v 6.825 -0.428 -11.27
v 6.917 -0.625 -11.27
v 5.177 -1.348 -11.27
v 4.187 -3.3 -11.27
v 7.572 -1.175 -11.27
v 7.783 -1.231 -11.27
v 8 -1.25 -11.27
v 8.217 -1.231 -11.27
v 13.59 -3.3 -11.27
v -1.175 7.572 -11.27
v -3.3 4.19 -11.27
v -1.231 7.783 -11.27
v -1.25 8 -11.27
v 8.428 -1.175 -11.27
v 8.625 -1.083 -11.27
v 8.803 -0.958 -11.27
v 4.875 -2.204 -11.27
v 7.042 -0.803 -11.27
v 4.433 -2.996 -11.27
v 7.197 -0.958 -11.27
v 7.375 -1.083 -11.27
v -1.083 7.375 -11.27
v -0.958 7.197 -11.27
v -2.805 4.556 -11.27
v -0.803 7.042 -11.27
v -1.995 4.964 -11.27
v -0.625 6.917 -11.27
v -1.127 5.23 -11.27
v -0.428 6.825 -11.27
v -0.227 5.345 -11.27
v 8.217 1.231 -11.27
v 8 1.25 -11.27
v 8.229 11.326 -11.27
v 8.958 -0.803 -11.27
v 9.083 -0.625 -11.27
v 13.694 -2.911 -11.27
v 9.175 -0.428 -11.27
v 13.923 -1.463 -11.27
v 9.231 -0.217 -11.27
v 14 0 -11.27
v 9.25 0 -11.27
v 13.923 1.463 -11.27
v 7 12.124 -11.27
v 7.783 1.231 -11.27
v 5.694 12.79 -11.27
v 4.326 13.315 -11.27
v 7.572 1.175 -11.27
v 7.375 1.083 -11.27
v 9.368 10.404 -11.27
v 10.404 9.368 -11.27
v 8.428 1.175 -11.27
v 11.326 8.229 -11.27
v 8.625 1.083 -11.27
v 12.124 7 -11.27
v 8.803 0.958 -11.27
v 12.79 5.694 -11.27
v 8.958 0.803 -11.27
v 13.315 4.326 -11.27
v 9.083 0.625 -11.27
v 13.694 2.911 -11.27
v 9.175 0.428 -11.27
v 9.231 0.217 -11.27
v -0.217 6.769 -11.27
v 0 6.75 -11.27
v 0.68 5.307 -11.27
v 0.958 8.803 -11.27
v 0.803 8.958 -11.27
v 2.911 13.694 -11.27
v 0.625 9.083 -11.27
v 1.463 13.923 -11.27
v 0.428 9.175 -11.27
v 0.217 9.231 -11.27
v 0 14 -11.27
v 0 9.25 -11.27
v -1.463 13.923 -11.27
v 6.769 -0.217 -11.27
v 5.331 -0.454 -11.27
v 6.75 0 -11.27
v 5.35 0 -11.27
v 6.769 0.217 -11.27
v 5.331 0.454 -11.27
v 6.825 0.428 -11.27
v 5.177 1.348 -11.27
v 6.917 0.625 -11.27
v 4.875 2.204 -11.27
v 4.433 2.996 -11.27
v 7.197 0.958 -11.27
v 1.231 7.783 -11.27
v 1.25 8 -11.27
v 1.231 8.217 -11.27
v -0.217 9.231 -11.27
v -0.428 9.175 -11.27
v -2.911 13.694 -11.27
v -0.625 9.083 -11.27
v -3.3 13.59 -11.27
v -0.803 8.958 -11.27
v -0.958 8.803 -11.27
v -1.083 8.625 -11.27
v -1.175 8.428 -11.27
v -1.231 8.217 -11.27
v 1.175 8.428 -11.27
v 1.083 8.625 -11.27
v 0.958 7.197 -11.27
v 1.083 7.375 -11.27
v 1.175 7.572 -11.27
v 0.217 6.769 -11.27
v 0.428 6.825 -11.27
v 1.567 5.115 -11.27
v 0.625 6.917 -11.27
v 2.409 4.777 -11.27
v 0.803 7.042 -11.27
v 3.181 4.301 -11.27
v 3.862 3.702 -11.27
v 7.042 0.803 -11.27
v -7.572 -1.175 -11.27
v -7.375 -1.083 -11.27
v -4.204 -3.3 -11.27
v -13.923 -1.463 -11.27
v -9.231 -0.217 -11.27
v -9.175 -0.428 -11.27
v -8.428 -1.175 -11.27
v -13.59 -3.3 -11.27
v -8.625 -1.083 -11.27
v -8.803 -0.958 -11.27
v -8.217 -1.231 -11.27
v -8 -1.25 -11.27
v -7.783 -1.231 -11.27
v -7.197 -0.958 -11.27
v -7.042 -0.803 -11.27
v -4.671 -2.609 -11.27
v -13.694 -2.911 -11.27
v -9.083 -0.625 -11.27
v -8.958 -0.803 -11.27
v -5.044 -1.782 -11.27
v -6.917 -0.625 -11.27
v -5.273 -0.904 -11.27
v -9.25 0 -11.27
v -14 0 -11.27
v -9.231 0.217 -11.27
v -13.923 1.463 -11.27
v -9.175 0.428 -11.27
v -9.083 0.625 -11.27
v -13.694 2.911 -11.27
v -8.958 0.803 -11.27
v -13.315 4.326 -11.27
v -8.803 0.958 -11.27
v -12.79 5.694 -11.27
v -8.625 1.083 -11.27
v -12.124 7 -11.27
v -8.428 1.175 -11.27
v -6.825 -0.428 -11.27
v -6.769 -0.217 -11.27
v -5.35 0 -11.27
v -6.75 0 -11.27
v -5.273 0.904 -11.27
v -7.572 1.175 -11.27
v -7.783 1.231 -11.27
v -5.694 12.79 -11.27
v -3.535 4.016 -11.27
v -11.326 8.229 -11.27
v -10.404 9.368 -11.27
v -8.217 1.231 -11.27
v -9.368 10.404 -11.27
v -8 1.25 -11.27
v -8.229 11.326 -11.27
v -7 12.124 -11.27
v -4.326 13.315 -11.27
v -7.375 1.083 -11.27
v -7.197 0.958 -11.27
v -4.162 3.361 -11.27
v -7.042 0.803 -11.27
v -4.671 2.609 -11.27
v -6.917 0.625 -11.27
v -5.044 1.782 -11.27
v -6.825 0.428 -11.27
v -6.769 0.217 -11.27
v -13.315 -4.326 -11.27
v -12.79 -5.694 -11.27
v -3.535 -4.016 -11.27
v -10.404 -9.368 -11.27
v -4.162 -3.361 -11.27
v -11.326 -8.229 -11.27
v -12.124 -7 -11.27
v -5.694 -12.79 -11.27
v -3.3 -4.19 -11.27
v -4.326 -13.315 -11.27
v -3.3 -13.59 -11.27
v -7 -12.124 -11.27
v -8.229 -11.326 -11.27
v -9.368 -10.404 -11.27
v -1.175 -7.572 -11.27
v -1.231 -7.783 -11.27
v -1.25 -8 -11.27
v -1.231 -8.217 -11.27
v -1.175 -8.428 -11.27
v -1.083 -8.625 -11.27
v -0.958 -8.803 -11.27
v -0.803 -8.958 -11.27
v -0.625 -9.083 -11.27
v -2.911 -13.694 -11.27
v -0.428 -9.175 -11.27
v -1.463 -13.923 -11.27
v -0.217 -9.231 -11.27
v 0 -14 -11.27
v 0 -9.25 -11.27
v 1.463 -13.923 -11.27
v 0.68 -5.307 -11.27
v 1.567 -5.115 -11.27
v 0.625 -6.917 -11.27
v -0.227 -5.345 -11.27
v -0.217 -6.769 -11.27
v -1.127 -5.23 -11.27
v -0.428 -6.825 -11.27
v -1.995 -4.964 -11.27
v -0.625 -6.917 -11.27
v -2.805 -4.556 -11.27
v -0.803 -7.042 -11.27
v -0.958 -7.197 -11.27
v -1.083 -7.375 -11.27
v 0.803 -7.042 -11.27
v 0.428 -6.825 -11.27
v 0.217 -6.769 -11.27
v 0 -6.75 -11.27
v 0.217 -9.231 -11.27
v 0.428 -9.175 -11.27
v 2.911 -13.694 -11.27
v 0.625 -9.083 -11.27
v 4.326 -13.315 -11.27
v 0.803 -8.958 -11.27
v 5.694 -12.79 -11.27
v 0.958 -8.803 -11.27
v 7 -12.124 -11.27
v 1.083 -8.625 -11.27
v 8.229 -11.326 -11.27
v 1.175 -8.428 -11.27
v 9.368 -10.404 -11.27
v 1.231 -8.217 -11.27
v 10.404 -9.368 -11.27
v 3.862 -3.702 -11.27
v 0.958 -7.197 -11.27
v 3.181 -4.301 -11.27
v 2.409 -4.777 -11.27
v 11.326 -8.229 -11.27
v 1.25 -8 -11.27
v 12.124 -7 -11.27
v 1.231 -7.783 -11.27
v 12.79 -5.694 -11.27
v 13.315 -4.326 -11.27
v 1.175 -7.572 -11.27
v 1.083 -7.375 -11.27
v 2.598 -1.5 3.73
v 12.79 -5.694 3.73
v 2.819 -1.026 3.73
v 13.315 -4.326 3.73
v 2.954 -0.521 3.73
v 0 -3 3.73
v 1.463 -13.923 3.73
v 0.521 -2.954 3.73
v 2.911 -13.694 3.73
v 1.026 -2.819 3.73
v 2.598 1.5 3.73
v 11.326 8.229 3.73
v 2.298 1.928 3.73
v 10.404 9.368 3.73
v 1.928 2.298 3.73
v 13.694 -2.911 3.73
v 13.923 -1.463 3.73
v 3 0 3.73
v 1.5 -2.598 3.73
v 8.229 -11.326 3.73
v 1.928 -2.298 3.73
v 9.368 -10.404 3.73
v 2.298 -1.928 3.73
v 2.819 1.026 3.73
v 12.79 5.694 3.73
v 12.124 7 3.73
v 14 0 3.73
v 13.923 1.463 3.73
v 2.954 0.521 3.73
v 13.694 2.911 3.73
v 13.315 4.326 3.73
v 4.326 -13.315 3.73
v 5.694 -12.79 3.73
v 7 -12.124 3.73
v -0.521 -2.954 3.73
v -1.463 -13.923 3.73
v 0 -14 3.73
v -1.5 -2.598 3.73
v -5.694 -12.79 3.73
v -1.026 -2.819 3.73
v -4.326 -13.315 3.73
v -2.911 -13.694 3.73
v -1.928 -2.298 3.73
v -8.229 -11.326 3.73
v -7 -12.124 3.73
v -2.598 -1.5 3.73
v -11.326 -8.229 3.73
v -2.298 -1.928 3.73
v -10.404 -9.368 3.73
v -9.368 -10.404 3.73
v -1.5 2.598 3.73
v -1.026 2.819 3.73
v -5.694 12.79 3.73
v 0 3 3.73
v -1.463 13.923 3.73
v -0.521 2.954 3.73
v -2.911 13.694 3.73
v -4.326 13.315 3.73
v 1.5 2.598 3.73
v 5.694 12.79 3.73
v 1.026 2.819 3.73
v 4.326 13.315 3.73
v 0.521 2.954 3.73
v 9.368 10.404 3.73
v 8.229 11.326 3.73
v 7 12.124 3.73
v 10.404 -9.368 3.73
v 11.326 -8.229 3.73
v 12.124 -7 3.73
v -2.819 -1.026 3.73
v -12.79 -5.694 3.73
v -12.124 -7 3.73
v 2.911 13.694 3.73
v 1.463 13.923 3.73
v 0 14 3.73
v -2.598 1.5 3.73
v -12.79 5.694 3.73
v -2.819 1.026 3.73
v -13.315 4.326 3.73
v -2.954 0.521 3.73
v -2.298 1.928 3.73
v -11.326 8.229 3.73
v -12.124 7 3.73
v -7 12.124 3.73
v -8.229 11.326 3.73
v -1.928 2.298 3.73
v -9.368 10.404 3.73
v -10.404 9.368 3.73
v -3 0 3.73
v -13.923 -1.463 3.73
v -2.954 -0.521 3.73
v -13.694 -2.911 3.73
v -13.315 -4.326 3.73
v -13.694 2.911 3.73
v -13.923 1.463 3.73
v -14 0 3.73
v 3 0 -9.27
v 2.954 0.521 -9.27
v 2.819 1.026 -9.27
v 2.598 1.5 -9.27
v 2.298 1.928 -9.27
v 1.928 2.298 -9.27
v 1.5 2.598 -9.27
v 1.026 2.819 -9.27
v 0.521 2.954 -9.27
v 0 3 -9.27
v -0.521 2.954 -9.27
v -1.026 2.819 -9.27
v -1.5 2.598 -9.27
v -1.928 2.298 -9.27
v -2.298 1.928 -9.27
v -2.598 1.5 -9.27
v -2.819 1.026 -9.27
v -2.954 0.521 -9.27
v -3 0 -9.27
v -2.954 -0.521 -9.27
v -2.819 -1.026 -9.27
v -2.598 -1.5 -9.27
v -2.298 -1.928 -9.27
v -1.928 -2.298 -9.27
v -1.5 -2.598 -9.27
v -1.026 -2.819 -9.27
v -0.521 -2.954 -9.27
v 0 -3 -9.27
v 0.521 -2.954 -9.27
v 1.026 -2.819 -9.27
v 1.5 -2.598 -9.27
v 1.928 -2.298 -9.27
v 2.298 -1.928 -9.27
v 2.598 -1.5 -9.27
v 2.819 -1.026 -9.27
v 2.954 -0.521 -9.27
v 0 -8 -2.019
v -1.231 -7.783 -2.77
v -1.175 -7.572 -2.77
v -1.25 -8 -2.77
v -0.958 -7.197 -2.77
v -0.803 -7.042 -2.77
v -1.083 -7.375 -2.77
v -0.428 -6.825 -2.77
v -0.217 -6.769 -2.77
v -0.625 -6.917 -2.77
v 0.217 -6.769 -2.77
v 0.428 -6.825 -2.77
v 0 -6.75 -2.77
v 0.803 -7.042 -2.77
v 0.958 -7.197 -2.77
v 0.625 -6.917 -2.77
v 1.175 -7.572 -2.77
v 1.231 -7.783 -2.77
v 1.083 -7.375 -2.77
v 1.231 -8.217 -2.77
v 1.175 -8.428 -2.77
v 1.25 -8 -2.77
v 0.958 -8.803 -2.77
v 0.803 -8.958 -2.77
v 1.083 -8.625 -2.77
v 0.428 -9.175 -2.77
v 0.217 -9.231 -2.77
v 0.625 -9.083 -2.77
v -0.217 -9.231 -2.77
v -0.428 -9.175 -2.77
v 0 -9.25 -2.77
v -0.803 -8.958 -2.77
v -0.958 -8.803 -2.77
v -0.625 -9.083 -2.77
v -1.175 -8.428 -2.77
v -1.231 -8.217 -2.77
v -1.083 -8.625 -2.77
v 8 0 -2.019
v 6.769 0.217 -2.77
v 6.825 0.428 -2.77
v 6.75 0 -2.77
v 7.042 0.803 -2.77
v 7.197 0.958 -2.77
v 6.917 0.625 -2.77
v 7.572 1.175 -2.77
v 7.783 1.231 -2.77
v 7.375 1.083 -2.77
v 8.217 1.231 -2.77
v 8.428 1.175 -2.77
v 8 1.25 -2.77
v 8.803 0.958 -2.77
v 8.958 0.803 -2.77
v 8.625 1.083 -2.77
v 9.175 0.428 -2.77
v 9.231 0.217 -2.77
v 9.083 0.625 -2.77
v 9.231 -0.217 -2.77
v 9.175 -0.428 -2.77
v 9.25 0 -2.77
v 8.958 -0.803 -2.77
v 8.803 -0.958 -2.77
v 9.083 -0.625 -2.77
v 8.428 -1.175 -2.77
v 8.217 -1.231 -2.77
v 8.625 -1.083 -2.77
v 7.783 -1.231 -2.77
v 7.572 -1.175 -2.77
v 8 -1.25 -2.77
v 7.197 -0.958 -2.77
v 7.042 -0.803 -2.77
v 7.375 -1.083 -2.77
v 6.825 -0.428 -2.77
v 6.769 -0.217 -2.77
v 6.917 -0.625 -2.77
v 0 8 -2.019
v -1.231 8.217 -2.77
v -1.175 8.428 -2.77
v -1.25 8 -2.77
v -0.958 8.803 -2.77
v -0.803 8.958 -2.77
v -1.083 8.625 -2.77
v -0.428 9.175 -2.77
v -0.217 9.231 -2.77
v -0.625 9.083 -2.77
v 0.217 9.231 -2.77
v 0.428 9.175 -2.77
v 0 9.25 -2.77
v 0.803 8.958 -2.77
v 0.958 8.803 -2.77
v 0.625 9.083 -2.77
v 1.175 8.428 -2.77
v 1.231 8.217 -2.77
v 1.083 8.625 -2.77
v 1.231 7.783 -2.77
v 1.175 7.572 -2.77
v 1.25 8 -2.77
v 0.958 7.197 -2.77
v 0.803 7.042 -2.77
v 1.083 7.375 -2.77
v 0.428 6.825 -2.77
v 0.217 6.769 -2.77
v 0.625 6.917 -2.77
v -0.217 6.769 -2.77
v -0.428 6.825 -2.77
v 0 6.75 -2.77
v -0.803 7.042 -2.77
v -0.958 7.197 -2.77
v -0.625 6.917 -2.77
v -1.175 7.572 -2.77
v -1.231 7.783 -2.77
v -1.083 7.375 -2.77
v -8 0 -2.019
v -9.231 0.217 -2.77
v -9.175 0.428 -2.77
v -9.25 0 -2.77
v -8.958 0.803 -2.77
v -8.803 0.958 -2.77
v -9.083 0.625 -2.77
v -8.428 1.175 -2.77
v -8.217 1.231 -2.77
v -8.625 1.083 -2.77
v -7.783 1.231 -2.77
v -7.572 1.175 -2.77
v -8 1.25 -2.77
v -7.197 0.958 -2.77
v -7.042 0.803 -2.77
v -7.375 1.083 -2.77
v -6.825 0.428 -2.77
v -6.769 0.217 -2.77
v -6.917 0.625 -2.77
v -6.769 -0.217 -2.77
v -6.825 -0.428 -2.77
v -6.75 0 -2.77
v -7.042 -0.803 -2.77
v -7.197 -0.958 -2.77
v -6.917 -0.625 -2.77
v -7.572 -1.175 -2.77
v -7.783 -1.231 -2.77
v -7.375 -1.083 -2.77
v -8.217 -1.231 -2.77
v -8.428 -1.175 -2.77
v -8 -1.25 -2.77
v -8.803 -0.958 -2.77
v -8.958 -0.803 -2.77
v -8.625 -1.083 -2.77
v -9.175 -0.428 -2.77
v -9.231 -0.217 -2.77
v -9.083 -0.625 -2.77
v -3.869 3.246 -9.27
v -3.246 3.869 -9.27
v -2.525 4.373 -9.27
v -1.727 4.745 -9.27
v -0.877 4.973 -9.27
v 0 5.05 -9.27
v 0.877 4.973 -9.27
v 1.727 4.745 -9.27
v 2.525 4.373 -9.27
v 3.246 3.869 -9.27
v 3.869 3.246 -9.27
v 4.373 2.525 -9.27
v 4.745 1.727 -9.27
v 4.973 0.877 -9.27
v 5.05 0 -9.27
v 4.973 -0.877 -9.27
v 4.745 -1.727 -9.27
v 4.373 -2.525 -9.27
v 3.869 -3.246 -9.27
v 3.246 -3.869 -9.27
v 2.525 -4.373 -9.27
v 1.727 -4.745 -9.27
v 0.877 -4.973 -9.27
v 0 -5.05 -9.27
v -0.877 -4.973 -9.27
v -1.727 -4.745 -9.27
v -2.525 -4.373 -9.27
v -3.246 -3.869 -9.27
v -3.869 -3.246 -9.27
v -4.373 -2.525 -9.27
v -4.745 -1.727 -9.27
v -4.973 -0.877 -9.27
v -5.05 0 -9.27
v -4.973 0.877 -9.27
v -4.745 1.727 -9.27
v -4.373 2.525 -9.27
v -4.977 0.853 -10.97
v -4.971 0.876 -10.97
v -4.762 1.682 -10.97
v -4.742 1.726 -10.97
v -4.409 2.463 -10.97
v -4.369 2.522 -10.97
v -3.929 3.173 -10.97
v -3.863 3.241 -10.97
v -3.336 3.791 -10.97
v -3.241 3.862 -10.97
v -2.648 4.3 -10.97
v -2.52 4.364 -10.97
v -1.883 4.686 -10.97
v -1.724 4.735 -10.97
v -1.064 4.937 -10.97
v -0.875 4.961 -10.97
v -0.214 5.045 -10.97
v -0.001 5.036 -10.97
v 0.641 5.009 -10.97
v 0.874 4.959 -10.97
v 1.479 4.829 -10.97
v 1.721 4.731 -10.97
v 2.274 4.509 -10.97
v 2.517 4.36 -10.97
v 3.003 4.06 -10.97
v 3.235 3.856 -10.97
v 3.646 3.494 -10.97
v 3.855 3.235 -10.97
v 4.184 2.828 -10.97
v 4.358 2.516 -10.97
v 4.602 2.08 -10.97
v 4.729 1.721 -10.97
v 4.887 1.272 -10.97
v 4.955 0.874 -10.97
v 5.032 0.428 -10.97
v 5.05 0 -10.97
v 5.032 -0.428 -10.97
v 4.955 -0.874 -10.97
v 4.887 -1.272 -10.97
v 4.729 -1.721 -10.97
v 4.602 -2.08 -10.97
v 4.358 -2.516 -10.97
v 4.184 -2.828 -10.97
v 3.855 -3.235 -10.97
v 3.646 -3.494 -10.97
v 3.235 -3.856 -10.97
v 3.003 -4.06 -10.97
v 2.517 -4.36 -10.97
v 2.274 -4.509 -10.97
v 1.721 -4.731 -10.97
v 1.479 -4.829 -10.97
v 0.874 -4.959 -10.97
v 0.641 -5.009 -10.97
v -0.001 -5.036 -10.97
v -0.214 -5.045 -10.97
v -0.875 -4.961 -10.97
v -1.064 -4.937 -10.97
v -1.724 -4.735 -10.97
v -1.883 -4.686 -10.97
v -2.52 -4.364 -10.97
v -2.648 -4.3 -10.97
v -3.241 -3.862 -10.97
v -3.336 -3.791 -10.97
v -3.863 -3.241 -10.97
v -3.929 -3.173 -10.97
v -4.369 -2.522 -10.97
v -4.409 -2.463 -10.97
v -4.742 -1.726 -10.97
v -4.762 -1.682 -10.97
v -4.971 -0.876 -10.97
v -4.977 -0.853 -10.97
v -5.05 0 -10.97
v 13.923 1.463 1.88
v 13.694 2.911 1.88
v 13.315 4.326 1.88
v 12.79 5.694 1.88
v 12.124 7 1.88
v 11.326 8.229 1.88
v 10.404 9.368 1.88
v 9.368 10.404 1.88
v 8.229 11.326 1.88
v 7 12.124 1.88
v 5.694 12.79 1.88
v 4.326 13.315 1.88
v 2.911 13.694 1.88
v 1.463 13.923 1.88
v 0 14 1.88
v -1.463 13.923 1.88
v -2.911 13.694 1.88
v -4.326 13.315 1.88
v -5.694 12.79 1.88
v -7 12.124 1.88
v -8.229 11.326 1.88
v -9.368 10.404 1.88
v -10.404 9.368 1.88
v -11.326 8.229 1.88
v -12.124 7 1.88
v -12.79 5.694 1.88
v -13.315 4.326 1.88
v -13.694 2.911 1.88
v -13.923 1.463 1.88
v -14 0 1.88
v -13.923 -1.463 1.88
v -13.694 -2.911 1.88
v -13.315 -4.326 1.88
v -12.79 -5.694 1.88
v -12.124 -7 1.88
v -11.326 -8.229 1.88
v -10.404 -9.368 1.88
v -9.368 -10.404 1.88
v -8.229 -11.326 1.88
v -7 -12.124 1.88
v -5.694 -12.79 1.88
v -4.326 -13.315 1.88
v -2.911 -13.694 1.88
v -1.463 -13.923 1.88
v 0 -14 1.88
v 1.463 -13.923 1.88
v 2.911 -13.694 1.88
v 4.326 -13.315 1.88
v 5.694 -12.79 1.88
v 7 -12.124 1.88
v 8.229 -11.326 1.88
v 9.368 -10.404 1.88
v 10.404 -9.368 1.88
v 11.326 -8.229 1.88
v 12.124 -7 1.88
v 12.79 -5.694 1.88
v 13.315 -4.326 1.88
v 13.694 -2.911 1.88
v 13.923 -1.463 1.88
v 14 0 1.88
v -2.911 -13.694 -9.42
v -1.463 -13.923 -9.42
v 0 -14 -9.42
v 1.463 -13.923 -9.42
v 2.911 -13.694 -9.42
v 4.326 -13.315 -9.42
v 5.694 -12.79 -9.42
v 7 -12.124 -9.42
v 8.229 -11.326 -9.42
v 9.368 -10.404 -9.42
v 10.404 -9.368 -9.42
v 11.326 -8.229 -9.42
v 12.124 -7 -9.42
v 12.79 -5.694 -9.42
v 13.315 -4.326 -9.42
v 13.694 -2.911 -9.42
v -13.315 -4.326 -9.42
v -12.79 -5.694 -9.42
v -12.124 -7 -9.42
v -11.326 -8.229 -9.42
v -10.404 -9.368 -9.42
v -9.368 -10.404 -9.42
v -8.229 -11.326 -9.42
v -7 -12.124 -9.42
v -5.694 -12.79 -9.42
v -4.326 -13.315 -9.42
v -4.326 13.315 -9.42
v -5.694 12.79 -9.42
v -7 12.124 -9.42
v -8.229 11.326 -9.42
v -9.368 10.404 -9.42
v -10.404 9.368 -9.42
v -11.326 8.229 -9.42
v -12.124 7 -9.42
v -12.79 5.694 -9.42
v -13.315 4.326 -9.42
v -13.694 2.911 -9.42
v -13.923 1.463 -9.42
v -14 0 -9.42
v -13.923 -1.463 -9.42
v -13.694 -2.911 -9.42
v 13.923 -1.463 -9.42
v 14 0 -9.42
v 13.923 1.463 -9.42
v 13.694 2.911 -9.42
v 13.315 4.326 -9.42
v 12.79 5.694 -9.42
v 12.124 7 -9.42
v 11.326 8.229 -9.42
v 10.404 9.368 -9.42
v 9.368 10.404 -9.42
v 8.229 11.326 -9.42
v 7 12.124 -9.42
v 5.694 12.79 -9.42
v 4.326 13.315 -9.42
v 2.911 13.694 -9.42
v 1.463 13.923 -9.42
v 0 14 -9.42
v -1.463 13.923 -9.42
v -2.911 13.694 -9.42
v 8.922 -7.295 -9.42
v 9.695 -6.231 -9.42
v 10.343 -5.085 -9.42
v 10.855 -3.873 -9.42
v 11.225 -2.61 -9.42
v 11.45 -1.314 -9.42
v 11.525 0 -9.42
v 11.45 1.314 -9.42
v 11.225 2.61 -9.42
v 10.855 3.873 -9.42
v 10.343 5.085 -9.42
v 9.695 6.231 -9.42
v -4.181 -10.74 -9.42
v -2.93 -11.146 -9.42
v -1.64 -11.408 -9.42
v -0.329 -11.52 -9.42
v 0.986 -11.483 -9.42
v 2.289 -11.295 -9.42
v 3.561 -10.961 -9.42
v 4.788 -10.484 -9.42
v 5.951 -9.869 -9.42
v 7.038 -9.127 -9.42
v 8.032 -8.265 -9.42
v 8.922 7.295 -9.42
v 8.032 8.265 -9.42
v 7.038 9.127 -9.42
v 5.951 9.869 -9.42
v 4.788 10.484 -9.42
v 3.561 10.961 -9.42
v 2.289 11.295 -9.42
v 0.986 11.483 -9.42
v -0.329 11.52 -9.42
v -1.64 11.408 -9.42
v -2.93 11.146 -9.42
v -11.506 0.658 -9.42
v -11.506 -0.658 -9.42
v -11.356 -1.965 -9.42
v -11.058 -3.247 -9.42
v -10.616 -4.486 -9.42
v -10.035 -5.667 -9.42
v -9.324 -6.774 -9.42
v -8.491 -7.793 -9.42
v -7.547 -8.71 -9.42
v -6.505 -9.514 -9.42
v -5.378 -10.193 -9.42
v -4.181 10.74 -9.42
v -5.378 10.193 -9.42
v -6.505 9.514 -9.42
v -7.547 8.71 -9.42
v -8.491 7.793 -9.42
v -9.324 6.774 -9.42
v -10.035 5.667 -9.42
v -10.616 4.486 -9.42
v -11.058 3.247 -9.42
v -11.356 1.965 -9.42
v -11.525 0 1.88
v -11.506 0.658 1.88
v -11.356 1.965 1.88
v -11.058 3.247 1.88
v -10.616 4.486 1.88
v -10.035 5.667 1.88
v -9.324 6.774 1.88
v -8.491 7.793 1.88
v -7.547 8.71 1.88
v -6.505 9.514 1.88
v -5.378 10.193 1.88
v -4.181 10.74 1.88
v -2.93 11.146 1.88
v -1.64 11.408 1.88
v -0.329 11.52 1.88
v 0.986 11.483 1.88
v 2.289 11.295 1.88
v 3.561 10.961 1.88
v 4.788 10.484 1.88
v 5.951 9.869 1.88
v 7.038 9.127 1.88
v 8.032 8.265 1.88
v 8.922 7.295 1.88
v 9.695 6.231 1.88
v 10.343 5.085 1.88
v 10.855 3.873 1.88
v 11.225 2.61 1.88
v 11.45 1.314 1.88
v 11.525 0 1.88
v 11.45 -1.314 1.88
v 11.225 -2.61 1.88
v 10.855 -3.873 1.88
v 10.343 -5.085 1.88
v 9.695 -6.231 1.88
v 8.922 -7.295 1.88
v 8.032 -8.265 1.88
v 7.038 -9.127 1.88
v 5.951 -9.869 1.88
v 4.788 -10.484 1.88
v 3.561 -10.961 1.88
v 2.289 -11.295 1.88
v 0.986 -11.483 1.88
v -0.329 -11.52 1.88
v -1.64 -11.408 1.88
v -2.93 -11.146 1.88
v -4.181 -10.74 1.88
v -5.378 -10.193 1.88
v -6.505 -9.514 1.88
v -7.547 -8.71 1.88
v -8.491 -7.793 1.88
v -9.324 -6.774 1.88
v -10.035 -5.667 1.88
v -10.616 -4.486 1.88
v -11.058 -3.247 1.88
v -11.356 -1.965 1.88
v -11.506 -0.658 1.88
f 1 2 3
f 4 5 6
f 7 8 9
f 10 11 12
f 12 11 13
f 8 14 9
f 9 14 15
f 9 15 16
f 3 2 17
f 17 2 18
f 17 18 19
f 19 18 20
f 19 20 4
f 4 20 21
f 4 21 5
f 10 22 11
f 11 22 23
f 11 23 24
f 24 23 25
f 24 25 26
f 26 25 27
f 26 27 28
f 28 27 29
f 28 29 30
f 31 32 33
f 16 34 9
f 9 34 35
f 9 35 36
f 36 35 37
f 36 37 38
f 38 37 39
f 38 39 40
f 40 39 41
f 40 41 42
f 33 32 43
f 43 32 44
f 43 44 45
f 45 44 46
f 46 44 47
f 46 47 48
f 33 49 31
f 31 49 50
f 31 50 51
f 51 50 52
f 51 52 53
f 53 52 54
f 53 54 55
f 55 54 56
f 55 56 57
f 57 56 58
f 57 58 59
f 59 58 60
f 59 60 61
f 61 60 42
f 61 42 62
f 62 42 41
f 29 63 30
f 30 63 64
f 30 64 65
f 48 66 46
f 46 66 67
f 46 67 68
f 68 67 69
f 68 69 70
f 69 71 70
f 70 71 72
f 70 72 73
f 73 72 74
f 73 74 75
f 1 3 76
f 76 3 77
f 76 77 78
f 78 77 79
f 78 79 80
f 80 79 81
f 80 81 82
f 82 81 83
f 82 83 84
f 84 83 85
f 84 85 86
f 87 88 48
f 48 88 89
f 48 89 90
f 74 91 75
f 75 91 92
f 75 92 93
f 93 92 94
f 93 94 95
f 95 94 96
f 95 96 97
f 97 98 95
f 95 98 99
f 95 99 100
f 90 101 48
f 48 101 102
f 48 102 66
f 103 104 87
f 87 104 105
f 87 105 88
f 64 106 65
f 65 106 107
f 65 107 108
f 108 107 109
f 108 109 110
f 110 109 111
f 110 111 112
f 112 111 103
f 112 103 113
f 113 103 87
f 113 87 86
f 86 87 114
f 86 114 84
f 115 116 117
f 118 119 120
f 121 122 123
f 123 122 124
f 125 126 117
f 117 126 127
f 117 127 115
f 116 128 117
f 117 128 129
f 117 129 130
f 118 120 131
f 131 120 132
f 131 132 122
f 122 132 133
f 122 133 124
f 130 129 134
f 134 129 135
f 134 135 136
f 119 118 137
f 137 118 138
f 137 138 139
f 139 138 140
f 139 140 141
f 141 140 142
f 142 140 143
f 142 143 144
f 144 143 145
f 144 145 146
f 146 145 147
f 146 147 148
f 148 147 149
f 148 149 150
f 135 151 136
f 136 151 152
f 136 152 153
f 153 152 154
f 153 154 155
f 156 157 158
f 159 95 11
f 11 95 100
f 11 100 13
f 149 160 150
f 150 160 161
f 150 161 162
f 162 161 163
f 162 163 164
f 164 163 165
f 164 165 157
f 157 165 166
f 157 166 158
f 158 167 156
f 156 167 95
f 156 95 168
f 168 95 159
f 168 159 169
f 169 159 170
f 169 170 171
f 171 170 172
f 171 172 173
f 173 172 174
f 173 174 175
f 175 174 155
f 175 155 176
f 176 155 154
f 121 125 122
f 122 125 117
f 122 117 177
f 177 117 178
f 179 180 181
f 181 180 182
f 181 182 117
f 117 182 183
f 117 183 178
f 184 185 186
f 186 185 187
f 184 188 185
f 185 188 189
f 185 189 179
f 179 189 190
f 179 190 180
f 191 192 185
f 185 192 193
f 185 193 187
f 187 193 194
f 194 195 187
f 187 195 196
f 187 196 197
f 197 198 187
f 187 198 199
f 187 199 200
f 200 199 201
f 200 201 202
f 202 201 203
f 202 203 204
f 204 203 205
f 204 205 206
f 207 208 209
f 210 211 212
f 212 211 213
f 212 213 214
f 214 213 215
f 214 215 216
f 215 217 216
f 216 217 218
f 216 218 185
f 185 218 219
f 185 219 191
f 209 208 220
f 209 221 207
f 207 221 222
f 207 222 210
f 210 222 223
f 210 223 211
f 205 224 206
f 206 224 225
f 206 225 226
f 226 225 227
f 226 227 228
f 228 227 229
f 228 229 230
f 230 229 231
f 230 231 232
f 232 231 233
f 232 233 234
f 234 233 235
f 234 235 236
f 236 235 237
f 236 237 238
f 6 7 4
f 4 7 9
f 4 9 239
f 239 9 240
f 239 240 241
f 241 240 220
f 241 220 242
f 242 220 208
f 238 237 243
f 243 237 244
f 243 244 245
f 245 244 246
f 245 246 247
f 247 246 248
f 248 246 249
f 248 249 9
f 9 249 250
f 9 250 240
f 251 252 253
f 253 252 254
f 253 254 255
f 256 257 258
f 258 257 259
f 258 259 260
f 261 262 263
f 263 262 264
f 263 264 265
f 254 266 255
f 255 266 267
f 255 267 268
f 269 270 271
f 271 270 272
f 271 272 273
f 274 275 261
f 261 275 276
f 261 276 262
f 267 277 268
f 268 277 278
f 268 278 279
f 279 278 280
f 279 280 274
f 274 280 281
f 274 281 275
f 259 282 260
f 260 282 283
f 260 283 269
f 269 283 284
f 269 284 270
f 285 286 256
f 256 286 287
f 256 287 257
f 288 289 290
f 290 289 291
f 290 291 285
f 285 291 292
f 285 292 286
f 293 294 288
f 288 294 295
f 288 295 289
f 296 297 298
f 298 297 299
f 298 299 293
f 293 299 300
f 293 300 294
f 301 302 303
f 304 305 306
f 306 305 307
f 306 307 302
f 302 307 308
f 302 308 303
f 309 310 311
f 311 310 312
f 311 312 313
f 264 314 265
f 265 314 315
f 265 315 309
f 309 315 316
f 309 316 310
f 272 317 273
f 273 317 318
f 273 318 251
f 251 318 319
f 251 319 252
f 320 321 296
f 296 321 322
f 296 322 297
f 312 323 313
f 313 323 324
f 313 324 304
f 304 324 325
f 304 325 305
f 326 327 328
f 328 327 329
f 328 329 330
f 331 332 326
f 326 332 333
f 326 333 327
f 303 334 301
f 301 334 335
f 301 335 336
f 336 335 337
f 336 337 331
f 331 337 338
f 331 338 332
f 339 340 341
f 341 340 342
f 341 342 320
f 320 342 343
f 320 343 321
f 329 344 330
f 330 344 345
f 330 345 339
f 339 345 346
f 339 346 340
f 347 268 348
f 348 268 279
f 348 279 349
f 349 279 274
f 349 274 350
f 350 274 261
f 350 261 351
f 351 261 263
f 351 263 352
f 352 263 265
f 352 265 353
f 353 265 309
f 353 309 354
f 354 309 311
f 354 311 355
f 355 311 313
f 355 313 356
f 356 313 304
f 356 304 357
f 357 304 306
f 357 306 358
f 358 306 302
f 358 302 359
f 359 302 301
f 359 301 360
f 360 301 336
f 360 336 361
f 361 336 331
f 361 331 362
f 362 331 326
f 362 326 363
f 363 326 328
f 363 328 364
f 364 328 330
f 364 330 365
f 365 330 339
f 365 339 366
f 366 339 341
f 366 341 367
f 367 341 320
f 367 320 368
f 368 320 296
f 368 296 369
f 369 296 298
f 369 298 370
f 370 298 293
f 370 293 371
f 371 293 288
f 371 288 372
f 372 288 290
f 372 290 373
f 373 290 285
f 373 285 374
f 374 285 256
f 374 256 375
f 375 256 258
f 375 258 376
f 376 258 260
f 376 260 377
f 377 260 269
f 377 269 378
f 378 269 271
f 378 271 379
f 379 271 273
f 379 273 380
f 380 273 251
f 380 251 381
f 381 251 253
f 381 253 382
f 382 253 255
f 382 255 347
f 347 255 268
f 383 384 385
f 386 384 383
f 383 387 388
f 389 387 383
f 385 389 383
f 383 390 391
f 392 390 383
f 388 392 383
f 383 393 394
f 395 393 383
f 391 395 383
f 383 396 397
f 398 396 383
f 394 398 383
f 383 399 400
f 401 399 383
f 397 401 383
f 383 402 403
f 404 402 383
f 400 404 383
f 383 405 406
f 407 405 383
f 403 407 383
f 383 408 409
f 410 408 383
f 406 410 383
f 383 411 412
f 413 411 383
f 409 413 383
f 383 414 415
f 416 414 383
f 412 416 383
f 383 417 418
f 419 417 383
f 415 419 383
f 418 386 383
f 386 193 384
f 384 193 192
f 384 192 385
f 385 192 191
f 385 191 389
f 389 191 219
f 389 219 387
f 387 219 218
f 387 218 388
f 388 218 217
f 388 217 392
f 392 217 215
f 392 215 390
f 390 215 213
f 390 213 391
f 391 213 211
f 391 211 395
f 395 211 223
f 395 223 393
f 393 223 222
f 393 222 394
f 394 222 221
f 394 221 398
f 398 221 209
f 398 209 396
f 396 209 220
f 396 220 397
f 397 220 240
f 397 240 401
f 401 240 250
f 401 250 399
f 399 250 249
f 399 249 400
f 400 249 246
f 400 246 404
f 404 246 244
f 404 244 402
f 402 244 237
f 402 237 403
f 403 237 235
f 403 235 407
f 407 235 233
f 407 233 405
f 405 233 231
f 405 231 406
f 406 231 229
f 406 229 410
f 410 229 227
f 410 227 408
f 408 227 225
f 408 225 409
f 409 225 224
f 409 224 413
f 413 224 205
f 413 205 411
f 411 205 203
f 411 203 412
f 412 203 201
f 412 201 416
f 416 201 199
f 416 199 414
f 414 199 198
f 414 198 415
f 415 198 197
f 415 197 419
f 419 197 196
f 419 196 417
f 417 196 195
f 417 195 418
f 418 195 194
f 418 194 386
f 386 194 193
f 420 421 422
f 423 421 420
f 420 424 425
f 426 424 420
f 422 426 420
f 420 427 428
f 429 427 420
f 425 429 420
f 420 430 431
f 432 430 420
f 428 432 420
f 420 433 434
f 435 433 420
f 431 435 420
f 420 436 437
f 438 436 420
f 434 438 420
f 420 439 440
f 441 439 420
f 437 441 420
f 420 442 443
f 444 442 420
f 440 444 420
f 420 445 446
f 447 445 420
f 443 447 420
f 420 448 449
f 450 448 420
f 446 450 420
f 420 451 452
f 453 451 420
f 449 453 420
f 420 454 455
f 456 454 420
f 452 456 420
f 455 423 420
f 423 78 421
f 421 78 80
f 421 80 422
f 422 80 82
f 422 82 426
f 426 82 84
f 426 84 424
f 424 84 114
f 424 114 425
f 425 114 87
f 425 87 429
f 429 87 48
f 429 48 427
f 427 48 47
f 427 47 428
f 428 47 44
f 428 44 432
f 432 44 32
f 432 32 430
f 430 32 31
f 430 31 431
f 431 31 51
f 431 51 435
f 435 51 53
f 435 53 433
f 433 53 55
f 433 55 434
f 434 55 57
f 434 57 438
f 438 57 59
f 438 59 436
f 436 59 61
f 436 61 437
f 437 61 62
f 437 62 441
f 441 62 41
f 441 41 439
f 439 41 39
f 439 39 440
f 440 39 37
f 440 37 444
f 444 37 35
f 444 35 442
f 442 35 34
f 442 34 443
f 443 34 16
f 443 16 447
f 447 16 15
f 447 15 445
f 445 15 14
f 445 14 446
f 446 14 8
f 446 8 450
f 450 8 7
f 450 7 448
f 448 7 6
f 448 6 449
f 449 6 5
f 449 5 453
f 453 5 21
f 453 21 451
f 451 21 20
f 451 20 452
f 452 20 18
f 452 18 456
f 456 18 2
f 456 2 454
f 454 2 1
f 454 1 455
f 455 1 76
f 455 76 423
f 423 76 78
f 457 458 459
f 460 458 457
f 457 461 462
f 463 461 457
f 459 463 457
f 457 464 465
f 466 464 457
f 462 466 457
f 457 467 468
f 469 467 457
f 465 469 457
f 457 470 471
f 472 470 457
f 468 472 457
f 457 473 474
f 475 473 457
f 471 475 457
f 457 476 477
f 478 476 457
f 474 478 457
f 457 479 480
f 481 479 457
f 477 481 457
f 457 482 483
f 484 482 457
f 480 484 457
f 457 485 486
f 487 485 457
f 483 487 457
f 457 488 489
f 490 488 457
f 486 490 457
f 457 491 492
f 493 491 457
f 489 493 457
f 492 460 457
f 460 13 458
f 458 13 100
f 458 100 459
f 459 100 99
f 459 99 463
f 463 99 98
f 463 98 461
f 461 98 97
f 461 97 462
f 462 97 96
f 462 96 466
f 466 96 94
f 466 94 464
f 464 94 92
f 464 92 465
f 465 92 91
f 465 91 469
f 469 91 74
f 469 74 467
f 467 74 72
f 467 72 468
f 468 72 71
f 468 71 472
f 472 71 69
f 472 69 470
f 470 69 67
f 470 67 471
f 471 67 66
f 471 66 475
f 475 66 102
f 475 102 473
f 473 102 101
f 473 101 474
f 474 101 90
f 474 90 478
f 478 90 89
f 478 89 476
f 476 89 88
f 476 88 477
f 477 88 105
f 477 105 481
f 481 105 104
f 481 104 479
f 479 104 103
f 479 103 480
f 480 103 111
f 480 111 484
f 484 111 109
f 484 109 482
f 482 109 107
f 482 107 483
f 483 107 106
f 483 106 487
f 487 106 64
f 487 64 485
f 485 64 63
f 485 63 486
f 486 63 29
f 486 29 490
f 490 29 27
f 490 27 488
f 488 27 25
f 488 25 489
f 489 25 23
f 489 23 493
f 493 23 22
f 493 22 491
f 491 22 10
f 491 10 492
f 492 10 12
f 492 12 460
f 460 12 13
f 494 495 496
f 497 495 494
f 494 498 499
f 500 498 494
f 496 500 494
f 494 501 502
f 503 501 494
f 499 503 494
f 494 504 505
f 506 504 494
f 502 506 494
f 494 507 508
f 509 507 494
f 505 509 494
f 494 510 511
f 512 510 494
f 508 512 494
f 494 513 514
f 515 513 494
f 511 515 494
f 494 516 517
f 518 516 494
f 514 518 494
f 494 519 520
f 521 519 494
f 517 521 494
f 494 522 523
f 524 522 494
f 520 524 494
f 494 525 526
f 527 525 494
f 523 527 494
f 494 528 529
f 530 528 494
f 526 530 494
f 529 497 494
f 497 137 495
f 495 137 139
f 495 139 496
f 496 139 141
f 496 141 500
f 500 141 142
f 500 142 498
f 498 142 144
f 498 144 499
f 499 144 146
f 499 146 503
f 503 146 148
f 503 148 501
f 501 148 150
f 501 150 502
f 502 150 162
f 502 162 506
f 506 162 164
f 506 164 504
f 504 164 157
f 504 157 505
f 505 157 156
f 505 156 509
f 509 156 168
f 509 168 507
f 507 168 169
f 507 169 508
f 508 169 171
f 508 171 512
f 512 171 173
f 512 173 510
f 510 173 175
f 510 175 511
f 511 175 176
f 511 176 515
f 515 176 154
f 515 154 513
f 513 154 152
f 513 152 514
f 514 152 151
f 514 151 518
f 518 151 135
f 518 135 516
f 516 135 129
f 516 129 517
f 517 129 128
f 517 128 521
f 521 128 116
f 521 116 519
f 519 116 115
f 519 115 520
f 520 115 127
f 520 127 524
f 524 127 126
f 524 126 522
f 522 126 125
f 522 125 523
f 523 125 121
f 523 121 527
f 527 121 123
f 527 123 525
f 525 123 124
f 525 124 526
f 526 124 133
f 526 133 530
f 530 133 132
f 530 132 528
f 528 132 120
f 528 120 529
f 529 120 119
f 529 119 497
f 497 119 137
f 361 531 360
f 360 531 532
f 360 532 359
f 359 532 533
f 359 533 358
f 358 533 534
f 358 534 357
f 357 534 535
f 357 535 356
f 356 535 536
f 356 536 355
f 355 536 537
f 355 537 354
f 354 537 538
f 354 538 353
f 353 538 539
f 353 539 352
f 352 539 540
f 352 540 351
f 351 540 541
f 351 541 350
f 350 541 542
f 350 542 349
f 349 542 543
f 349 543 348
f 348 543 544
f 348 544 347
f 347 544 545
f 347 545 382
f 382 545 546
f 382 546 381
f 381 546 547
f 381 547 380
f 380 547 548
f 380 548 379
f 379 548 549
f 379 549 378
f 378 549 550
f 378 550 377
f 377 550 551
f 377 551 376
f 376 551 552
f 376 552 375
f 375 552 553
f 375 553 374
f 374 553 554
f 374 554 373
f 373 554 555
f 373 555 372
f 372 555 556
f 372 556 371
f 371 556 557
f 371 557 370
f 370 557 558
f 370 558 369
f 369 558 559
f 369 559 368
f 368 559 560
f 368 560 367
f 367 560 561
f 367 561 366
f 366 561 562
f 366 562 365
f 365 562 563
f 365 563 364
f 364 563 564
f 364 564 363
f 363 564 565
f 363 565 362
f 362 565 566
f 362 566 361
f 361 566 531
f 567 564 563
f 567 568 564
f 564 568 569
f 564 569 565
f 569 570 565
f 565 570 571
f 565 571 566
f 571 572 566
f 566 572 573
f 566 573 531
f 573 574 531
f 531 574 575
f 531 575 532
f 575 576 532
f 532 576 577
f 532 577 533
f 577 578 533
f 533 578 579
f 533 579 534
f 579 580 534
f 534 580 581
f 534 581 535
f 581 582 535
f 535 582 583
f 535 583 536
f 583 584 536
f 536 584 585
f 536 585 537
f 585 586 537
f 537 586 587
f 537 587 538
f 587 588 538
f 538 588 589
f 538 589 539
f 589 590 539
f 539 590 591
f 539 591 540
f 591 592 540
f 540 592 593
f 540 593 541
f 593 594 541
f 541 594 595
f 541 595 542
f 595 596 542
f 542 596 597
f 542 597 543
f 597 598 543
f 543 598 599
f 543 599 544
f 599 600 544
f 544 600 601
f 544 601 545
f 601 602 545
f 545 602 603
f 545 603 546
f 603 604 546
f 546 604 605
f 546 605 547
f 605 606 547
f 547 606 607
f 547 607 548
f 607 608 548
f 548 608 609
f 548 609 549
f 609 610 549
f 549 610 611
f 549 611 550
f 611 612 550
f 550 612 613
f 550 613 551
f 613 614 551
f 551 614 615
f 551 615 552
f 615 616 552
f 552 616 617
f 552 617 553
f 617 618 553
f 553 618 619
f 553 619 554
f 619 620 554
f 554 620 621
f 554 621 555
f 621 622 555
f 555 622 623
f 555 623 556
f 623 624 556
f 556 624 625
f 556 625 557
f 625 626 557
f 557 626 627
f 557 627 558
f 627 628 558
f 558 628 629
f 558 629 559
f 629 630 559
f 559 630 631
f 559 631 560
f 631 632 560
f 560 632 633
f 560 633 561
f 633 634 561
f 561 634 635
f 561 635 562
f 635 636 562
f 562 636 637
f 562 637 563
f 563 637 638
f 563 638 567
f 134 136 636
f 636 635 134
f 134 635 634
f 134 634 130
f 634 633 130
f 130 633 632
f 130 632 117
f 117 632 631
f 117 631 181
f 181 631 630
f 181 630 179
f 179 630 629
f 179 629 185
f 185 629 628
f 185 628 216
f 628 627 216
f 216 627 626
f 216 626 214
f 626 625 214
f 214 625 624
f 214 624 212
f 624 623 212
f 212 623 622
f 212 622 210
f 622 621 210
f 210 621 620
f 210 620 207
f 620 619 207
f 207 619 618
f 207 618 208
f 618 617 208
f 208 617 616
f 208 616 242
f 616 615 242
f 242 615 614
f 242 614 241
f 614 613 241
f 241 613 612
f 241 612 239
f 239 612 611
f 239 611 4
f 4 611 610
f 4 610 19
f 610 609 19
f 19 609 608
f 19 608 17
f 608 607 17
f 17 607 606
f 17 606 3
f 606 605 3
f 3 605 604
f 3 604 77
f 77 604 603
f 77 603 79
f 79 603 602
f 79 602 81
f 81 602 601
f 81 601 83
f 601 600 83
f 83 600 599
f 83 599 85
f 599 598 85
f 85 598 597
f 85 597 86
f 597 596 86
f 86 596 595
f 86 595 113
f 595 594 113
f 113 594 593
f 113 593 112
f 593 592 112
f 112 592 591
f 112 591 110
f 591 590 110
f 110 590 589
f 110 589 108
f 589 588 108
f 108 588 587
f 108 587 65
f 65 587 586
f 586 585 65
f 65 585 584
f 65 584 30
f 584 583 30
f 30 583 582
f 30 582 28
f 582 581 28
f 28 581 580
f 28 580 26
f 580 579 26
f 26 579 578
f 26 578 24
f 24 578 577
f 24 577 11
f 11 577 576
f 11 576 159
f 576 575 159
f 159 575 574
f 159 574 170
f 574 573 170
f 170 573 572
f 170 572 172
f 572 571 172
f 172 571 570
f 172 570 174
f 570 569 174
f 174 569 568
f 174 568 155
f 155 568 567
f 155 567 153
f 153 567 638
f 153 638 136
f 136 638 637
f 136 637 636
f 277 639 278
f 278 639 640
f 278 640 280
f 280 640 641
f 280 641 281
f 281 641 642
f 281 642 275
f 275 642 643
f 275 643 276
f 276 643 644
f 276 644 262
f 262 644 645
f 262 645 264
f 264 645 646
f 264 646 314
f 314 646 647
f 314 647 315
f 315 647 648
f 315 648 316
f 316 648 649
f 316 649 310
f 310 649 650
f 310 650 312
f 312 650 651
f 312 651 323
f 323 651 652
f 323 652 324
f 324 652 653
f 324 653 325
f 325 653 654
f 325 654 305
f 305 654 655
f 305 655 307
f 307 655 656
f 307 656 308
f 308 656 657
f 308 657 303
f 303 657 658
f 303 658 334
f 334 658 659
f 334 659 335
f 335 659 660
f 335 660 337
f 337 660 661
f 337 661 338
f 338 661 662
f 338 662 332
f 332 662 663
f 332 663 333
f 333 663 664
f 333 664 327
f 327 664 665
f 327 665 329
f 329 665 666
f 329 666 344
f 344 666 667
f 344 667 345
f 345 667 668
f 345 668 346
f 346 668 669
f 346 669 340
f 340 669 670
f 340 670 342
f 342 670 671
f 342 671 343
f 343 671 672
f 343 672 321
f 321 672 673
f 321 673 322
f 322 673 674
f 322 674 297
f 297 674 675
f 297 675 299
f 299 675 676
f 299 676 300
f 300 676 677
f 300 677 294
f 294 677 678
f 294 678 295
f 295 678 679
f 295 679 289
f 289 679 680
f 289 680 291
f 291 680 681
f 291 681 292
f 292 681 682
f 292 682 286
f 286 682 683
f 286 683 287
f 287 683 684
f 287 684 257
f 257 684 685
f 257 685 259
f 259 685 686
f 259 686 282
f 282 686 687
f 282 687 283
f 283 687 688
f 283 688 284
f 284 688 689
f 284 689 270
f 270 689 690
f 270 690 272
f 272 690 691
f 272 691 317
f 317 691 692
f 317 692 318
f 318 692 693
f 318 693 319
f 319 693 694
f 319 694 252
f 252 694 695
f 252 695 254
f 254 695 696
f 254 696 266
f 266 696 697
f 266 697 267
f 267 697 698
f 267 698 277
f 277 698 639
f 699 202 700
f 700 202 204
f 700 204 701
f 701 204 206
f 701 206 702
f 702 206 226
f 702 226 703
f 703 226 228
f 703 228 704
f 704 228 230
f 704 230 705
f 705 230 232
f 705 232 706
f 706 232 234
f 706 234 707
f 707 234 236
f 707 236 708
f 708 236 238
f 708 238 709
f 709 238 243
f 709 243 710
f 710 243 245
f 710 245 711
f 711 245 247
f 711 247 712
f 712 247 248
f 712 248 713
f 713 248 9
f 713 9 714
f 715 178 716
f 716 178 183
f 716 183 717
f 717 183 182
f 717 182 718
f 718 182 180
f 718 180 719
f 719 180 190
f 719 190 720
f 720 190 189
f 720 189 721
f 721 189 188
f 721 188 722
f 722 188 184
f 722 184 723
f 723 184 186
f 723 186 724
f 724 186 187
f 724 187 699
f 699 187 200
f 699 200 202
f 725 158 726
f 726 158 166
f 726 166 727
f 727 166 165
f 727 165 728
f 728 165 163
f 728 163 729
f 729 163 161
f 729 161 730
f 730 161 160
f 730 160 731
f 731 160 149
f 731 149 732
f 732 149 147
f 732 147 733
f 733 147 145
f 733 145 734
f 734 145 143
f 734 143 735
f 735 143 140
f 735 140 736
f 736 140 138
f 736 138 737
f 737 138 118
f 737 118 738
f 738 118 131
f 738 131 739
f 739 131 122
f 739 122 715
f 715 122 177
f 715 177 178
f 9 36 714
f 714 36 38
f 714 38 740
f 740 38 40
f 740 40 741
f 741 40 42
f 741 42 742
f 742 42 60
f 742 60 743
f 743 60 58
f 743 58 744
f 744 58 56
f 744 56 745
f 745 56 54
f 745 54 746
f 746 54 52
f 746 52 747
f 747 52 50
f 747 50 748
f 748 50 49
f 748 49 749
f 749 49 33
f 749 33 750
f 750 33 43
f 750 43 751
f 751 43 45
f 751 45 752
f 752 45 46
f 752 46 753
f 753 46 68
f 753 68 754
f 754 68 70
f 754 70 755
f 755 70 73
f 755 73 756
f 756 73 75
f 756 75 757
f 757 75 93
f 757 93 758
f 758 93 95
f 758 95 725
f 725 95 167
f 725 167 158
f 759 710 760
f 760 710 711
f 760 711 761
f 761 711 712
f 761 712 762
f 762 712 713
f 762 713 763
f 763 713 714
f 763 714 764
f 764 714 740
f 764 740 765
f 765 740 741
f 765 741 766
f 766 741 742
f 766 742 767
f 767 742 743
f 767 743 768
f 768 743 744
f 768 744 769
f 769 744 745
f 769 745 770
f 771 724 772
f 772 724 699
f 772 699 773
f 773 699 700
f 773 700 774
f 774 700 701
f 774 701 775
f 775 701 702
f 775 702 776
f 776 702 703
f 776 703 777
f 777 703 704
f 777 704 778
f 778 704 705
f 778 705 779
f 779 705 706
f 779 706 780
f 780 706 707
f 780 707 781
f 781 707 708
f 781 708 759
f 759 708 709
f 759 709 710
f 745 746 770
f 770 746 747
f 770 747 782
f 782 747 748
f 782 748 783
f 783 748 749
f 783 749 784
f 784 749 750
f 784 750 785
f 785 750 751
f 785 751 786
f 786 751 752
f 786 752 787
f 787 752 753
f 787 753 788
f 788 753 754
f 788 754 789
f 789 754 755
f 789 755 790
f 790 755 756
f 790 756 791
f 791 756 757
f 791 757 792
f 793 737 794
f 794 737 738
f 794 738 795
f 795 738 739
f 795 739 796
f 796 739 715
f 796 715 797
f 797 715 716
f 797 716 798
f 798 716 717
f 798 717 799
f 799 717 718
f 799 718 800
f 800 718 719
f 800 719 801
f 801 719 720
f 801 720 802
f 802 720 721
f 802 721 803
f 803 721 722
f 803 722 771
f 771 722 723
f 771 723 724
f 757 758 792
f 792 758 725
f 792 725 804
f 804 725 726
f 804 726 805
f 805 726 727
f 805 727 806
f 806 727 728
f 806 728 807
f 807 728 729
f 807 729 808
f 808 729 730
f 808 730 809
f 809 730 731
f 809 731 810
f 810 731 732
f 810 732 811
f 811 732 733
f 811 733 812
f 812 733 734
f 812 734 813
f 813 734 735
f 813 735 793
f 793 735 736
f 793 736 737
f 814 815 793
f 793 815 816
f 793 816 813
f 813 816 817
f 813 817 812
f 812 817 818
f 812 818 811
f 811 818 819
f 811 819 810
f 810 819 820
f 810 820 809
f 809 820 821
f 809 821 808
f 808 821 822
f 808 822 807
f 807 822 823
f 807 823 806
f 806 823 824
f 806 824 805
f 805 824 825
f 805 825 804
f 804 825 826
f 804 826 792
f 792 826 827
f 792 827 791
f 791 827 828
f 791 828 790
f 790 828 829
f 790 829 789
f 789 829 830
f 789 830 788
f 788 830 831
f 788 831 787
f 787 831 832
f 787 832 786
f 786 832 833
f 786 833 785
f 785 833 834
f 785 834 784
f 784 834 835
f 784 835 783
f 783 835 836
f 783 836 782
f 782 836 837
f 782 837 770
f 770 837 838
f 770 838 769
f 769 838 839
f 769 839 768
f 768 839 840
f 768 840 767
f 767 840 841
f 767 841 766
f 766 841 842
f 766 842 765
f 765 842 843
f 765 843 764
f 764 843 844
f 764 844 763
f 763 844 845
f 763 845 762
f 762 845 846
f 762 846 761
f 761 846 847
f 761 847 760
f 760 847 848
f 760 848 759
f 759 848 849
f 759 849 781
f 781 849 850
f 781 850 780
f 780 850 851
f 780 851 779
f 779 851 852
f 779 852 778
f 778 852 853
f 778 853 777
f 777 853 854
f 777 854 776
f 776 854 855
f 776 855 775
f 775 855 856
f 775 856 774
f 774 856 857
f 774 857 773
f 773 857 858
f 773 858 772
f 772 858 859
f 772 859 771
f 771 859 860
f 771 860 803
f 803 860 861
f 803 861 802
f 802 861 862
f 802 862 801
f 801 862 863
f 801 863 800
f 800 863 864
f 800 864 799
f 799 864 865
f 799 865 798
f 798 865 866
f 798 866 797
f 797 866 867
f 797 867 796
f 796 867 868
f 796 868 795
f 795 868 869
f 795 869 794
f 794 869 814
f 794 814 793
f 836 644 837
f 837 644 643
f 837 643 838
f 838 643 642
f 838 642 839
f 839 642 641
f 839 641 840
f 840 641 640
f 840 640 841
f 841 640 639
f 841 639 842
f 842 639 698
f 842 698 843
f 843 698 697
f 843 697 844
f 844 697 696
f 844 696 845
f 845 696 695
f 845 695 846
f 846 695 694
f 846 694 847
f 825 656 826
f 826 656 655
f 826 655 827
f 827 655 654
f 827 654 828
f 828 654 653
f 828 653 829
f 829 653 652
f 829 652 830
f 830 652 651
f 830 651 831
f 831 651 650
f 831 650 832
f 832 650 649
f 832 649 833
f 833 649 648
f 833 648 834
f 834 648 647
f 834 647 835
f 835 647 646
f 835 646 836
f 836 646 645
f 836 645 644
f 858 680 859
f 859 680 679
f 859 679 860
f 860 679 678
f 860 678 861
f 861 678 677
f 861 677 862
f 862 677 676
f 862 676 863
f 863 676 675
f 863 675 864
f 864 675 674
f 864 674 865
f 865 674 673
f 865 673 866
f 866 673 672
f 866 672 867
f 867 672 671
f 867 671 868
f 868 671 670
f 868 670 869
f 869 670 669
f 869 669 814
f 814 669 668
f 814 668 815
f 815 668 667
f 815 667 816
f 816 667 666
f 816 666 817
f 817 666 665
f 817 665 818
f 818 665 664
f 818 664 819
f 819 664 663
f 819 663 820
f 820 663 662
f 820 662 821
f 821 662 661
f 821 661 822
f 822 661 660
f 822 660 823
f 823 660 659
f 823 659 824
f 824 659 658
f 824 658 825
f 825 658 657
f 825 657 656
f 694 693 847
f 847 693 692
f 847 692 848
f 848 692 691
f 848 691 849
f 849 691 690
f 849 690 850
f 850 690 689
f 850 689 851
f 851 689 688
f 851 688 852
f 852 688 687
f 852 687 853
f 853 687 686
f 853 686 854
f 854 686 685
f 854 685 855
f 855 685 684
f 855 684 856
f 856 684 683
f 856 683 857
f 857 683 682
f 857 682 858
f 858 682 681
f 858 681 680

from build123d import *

# Parameters (mm, degrees)
CIRPATTERN2_COUNT       = 4
CHAMFER1_SIZE           = 0.3
CHAMFER2_SIZE           = 0.15
SKETCH6_R               = 5.05
CUT_EXTRUDE1_DEPTH      = 2
CHAMFER3_SIZE           = 0.3
SKETCH7_R               = 8
CUT_EXTRUDE2_DEPTH      = 6
CUT_EXTRUDE3_DEPTH      = 26.39125592
CUT_EXTRUDE3_DEPTH_BACK = 26.39125592
SKETCH10_R              = 22.04861813
SKETCH10_R_2            = 14


with BuildPart() as part:
    # Cut-Revolve1: read off the stored shape, not the designer's step
    # Cut-Revolve1 outline → Cut-Revolve1 (revolve)
    with BuildSketch(Plane.XZ):
        Polygon((11.525, 2.46), (15, 2.46), (16, 2.765730681), (15.628687935, 3.980237722), (14.810197228, 3.73), (8, 3.73), (8, 9.73), (3, 9.73), (3, -11.27), (14.810197228, -11.27), (15.628687935, -11.520237722), (16, -10.305730681), (15, -10), (11.525, -10), align=None)
    revolve(axis=Axis((0, 0, 0), (0, 0, 1)))

    # Sketch4 → M3 Tapped Hole2 (revolve, cut)
    with BuildSketch(Plane(origin=(0, -8, -11.27), x_dir=(0, 1, 0), z_dir=(1, 0, 0))):
        Polygon((0, 0), (0, 9.251075774), (1.25, 8.5), (1.25, 0), align=None)
    m3_tapped_hole2 = revolve(axis=Axis((0, -8, -17.62), (0, 0, 1)), mode=Mode.SUBTRACT)

    # CirPattern2: M3 Tapped Hole2 ×4 about axis
    cirpattern2_axis = Axis((0, 0, 0), (0, 0, 1))
    for i in range(1, CIRPATTERN2_COUNT):
        add(m3_tapped_hole2.rotate(cirpattern2_axis, i * 360 / CIRPATTERN2_COUNT), mode=Mode.SUBTRACT)

    # Chamfer1
    chamfer1_edges = [part.edges().sort_by_distance(p)[0] for p in [
        (-8, 0, 9.73),
    ]]
    chamfer(chamfer1_edges, length=CHAMFER1_SIZE)

    # Chamfer2
    chamfer2_edges = [part.edges().sort_by_distance(p)[0] for p in [
        (-3, 0, 9.73),
    ]]
    chamfer(chamfer2_edges, length=CHAMFER2_SIZE)

    # Sketch6 → Cut-Extrude1 (cut)
    with BuildSketch(Plane(origin=(0, 0, -11.27), x_dir=(-1, 0, 0), z_dir=(0, 0, -1))):
        Circle(SKETCH6_R)
    extrude(amount=-CUT_EXTRUDE1_DEPTH, mode=Mode.SUBTRACT)

    # Chamfer3
    chamfer3_edges = [part.edges().sort_by_distance(p)[0] for p in [
        (5.05, 0, -11.27),
    ]]
    chamfer(chamfer3_edges, length=CHAMFER3_SIZE)

    # Sketch7 → Cut-Extrude2 (cut)
    with BuildSketch(Plane.XY.offset(9.73)):
        Circle(SKETCH7_R)
    extrude(amount=-CUT_EXTRUDE2_DEPTH, mode=Mode.SUBTRACT)

    # Sketch9 → Revolve1 (revolve)
    with BuildSketch(Plane(origin=(0, 0, 0), x_dir=(1, 0, 0), z_dir=(0, 1, 0))):
        Polygon((-16, 10.305730681), (-14.85, 9.42), (-11.525, 9.42), (-11.525, 10.305730681), align=None)
        Polygon((-16, -2.765730681), (-14.85, -1.88), (-11.525, -1.88), (-11.525, -2.765730681), align=None)
    revolve(axis=Axis((0, 0, -10.305730681), (0, 0, 1)))

    # Sketch10 → Cut-Extrude3 (cut, two sides: drawn at the far end of the back side and taken through both)
    with BuildSketch(Plane.XY.offset(-CUT_EXTRUDE3_DEPTH_BACK)):
        Circle(SKETCH10_R)
        with Locations(Location((0, 0, 0), (0, 0, 180))):
            Circle(SKETCH10_R_2, mode=Mode.SUBTRACT)
    extrude(amount=CUT_EXTRUDE3_DEPTH + CUT_EXTRUDE3_DEPTH_BACK, mode=Mode.SUBTRACT)


solid = part.part
